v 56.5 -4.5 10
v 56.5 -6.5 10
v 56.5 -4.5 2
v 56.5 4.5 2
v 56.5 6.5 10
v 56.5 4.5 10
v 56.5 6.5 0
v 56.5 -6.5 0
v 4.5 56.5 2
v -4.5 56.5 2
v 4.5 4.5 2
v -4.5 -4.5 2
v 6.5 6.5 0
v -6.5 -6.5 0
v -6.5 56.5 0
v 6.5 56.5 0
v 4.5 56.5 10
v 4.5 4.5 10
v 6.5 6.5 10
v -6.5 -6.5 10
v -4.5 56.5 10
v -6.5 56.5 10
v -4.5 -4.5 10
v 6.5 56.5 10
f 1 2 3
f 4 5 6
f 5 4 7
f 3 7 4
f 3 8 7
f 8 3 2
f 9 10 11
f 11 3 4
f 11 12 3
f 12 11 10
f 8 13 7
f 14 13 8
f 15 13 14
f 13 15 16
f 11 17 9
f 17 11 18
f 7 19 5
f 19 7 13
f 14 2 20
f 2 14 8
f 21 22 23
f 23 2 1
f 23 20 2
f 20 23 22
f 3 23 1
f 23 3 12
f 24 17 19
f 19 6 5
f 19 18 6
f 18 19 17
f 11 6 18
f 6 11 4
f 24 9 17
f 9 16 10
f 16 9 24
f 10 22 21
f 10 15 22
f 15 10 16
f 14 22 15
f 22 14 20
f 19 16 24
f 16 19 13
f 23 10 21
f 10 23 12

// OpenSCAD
// file: common.scad
// ============================================
// КОНСТАНТЫ
// ============================================

// Основные размеры
CENTER_SIZE = 9;           // размер центрального квадрата (под фанеру)
SLEEVE_REACH = 56.5;       // расстояние от центра до монтажного отверстия
GROOVE_WIDTH = 9;          // ширина паза для фанеры
WALL_HEIGHT = 10;          // высота стенок
WALL_THICKNESS = 2;        // толщина стенок
BASE_THICKNESS = 2;        // толщина основания (пола)

// Вычисляемые константы
TOTAL_WIDTH = GROOVE_WIDTH + 2 * WALL_THICKNESS;  // полная ширина (13мм)
SLEEVE_LENGTH = SLEEVE_REACH - CENTER_SIZE/2;     // длина рукава

// Штыри
DOWEL_DIAMETER = 4.8;      // диаметр штыря (чуть меньше 5мм отверстия)
DOWEL_DEPTH = 3;           // глубина штыря

// ============================================
// МОДУЛИ ДЛЯ ЦЕНТРА
// ============================================

// Нарисовать основание центра (платформа без стенок)
module draw_center_base(with_dowel = false) {
    union() {
        // Платформа
        translate([-TOTAL_WIDTH/2, -TOTAL_WIDTH/2, 0])
            cube([TOTAL_WIDTH, TOTAL_WIDTH, BASE_THICKNESS]);

        // Добавляем штырь если нужно (выступает вниз)
        if (with_dowel) {
            translate([0, 0, -DOWEL_DEPTH])
                cylinder(h=DOWEL_DEPTH, d=DOWEL_DIAMETER, $fn=30);
        }
    }
}

// Установить стенку центра на нужную сторону
// side: 0=право, 1=перед, 2=лево, 3=назад
// Стенки идут вдоль всего основания (внахлест)
module place_center_wall(side) {
    if (side == 0) {
        // Право - вертикальная стенка вдоль Y
        translate([CENTER_SIZE/2, -TOTAL_WIDTH/2, BASE_THICKNESS])
            cube([WALL_THICKNESS, TOTAL_WIDTH, WALL_HEIGHT - BASE_THICKNESS]);
    } else if (side == 1) {
        // Перед - горизонтальная стенка вдоль X
        translate([-TOTAL_WIDTH/2, CENTER_SIZE/2, BASE_THICKNESS])
            cube([TOTAL_WIDTH, WALL_THICKNESS, WALL_HEIGHT - BASE_THICKNESS]);
    } else if (side == 2) {
        // Лево - вертикальная стенка вдоль Y
        translate([-CENTER_SIZE/2 - WALL_THICKNESS, -TOTAL_WIDTH/2, BASE_THICKNESS])
            cube([WALL_THICKNESS, TOTAL_WIDTH, WALL_HEIGHT - BASE_THICKNESS]);
    } else if (side == 3) {
        // Назад - горизонтальная стенка вдоль X
        translate([-TOTAL_WIDTH/2, -CENTER_SIZE/2 - WALL_THICKNESS, BASE_THICKNESS])
            cube([TOTAL_WIDTH, WALL_THICKNESS, WALL_HEIGHT - BASE_THICKNESS]);
    }
}

// ============================================
// МОДУЛИ ДЛЯ РУКАВА
// ============================================

// Нарисовать основание рукава (платформа рукава)
module draw_sleeve_base(with_dowel = false) {
    union() {
        // Платформа рукава
        translate([CENTER_SIZE/2, -TOTAL_WIDTH/2, 0])
            cube([SLEEVE_LENGTH, TOTAL_WIDTH, BASE_THICKNESS]);

        // Добавляем штыри если нужно (выступают вниз на 25мм и 50мм от центра)
        if (with_dowel) {
            translate([25, 0, -DOWEL_DEPTH])
                cylinder(h=DOWEL_DEPTH, d=DOWEL_DIAMETER, $fn=30);
            translate([50, 0, -DOWEL_DEPTH])
                cylinder(h=DOWEL_DEPTH, d=DOWEL_DIAMETER, $fn=30);
        }
    }
}

// Нарисовать одну прямую стенку рукава
// wall_side: "left" или "right"
module draw_sleeve_straight_wall(wall_side) {
    y_offset = (wall_side == "left") ? -TOTAL_WIDTH/2 : TOTAL_WIDTH/2 - WALL_THICKNESS;

    translate([CENTER_SIZE/2, y_offset, BASE_THICKNESS])
        cube([SLEEVE_LENGTH, WALL_THICKNESS, WALL_HEIGHT - BASE_THICKNESS]);
}

// Нарисовать полный рукав (основание + 2 стенки)
module draw_full_sleeve(with_dowel = false) {
    union() {
        draw_sleeve_base(with_dowel);
        draw_sleeve_straight_wall("left");
        draw_sleeve_straight_wall("right");
    }
}

// Установить рукав на нужную сторону
// side: 0=право, 1=перед, 2=лево, 3=назад
module place_sleeve(side, with_dowel = false) {
    if (side == 0) {
        draw_full_sleeve(with_dowel);
    } else if (side == 1) {
        rotate([0, 0, 90])
            draw_full_sleeve(with_dowel);
    } else if (side == 2) {
        rotate([0, 0, 180])
            draw_full_sleeve(with_dowel);
    } else if (side == 3) {
        rotate([0, 0, 270])
            draw_full_sleeve(with_dowel);
    }
}

// ============================================
// ВСПОМОГАТЕЛЬНЫЕ МОДУЛИ (для обратной совместимости)
// ============================================

// Добавить штырь (старый интерфейс)
module add_dowel(x, y, dowel_diameter, dowel_depth) {
    translate([x, y, -dowel_depth])
        cylinder(h=dowel_depth, d=dowel_diameter, $fn=30);
}
// main file
use <common.scad>

// Угловой соединитель (L-образный)
// Выходы: право (0) и перед (1)

union() {
    // Основание центра
    draw_center_base(with_dowel = false);

    // Стенки центра на двух сторонах без выходов
    place_center_wall(2);  // лево - закрыто
    place_center_wall(3);  // назад - закрыто

    // Рукава на сторонах с выходами
    place_sleeve(0, with_dowel = false);  // право
    place_sleeve(1, with_dowel = false);  // перед
}
